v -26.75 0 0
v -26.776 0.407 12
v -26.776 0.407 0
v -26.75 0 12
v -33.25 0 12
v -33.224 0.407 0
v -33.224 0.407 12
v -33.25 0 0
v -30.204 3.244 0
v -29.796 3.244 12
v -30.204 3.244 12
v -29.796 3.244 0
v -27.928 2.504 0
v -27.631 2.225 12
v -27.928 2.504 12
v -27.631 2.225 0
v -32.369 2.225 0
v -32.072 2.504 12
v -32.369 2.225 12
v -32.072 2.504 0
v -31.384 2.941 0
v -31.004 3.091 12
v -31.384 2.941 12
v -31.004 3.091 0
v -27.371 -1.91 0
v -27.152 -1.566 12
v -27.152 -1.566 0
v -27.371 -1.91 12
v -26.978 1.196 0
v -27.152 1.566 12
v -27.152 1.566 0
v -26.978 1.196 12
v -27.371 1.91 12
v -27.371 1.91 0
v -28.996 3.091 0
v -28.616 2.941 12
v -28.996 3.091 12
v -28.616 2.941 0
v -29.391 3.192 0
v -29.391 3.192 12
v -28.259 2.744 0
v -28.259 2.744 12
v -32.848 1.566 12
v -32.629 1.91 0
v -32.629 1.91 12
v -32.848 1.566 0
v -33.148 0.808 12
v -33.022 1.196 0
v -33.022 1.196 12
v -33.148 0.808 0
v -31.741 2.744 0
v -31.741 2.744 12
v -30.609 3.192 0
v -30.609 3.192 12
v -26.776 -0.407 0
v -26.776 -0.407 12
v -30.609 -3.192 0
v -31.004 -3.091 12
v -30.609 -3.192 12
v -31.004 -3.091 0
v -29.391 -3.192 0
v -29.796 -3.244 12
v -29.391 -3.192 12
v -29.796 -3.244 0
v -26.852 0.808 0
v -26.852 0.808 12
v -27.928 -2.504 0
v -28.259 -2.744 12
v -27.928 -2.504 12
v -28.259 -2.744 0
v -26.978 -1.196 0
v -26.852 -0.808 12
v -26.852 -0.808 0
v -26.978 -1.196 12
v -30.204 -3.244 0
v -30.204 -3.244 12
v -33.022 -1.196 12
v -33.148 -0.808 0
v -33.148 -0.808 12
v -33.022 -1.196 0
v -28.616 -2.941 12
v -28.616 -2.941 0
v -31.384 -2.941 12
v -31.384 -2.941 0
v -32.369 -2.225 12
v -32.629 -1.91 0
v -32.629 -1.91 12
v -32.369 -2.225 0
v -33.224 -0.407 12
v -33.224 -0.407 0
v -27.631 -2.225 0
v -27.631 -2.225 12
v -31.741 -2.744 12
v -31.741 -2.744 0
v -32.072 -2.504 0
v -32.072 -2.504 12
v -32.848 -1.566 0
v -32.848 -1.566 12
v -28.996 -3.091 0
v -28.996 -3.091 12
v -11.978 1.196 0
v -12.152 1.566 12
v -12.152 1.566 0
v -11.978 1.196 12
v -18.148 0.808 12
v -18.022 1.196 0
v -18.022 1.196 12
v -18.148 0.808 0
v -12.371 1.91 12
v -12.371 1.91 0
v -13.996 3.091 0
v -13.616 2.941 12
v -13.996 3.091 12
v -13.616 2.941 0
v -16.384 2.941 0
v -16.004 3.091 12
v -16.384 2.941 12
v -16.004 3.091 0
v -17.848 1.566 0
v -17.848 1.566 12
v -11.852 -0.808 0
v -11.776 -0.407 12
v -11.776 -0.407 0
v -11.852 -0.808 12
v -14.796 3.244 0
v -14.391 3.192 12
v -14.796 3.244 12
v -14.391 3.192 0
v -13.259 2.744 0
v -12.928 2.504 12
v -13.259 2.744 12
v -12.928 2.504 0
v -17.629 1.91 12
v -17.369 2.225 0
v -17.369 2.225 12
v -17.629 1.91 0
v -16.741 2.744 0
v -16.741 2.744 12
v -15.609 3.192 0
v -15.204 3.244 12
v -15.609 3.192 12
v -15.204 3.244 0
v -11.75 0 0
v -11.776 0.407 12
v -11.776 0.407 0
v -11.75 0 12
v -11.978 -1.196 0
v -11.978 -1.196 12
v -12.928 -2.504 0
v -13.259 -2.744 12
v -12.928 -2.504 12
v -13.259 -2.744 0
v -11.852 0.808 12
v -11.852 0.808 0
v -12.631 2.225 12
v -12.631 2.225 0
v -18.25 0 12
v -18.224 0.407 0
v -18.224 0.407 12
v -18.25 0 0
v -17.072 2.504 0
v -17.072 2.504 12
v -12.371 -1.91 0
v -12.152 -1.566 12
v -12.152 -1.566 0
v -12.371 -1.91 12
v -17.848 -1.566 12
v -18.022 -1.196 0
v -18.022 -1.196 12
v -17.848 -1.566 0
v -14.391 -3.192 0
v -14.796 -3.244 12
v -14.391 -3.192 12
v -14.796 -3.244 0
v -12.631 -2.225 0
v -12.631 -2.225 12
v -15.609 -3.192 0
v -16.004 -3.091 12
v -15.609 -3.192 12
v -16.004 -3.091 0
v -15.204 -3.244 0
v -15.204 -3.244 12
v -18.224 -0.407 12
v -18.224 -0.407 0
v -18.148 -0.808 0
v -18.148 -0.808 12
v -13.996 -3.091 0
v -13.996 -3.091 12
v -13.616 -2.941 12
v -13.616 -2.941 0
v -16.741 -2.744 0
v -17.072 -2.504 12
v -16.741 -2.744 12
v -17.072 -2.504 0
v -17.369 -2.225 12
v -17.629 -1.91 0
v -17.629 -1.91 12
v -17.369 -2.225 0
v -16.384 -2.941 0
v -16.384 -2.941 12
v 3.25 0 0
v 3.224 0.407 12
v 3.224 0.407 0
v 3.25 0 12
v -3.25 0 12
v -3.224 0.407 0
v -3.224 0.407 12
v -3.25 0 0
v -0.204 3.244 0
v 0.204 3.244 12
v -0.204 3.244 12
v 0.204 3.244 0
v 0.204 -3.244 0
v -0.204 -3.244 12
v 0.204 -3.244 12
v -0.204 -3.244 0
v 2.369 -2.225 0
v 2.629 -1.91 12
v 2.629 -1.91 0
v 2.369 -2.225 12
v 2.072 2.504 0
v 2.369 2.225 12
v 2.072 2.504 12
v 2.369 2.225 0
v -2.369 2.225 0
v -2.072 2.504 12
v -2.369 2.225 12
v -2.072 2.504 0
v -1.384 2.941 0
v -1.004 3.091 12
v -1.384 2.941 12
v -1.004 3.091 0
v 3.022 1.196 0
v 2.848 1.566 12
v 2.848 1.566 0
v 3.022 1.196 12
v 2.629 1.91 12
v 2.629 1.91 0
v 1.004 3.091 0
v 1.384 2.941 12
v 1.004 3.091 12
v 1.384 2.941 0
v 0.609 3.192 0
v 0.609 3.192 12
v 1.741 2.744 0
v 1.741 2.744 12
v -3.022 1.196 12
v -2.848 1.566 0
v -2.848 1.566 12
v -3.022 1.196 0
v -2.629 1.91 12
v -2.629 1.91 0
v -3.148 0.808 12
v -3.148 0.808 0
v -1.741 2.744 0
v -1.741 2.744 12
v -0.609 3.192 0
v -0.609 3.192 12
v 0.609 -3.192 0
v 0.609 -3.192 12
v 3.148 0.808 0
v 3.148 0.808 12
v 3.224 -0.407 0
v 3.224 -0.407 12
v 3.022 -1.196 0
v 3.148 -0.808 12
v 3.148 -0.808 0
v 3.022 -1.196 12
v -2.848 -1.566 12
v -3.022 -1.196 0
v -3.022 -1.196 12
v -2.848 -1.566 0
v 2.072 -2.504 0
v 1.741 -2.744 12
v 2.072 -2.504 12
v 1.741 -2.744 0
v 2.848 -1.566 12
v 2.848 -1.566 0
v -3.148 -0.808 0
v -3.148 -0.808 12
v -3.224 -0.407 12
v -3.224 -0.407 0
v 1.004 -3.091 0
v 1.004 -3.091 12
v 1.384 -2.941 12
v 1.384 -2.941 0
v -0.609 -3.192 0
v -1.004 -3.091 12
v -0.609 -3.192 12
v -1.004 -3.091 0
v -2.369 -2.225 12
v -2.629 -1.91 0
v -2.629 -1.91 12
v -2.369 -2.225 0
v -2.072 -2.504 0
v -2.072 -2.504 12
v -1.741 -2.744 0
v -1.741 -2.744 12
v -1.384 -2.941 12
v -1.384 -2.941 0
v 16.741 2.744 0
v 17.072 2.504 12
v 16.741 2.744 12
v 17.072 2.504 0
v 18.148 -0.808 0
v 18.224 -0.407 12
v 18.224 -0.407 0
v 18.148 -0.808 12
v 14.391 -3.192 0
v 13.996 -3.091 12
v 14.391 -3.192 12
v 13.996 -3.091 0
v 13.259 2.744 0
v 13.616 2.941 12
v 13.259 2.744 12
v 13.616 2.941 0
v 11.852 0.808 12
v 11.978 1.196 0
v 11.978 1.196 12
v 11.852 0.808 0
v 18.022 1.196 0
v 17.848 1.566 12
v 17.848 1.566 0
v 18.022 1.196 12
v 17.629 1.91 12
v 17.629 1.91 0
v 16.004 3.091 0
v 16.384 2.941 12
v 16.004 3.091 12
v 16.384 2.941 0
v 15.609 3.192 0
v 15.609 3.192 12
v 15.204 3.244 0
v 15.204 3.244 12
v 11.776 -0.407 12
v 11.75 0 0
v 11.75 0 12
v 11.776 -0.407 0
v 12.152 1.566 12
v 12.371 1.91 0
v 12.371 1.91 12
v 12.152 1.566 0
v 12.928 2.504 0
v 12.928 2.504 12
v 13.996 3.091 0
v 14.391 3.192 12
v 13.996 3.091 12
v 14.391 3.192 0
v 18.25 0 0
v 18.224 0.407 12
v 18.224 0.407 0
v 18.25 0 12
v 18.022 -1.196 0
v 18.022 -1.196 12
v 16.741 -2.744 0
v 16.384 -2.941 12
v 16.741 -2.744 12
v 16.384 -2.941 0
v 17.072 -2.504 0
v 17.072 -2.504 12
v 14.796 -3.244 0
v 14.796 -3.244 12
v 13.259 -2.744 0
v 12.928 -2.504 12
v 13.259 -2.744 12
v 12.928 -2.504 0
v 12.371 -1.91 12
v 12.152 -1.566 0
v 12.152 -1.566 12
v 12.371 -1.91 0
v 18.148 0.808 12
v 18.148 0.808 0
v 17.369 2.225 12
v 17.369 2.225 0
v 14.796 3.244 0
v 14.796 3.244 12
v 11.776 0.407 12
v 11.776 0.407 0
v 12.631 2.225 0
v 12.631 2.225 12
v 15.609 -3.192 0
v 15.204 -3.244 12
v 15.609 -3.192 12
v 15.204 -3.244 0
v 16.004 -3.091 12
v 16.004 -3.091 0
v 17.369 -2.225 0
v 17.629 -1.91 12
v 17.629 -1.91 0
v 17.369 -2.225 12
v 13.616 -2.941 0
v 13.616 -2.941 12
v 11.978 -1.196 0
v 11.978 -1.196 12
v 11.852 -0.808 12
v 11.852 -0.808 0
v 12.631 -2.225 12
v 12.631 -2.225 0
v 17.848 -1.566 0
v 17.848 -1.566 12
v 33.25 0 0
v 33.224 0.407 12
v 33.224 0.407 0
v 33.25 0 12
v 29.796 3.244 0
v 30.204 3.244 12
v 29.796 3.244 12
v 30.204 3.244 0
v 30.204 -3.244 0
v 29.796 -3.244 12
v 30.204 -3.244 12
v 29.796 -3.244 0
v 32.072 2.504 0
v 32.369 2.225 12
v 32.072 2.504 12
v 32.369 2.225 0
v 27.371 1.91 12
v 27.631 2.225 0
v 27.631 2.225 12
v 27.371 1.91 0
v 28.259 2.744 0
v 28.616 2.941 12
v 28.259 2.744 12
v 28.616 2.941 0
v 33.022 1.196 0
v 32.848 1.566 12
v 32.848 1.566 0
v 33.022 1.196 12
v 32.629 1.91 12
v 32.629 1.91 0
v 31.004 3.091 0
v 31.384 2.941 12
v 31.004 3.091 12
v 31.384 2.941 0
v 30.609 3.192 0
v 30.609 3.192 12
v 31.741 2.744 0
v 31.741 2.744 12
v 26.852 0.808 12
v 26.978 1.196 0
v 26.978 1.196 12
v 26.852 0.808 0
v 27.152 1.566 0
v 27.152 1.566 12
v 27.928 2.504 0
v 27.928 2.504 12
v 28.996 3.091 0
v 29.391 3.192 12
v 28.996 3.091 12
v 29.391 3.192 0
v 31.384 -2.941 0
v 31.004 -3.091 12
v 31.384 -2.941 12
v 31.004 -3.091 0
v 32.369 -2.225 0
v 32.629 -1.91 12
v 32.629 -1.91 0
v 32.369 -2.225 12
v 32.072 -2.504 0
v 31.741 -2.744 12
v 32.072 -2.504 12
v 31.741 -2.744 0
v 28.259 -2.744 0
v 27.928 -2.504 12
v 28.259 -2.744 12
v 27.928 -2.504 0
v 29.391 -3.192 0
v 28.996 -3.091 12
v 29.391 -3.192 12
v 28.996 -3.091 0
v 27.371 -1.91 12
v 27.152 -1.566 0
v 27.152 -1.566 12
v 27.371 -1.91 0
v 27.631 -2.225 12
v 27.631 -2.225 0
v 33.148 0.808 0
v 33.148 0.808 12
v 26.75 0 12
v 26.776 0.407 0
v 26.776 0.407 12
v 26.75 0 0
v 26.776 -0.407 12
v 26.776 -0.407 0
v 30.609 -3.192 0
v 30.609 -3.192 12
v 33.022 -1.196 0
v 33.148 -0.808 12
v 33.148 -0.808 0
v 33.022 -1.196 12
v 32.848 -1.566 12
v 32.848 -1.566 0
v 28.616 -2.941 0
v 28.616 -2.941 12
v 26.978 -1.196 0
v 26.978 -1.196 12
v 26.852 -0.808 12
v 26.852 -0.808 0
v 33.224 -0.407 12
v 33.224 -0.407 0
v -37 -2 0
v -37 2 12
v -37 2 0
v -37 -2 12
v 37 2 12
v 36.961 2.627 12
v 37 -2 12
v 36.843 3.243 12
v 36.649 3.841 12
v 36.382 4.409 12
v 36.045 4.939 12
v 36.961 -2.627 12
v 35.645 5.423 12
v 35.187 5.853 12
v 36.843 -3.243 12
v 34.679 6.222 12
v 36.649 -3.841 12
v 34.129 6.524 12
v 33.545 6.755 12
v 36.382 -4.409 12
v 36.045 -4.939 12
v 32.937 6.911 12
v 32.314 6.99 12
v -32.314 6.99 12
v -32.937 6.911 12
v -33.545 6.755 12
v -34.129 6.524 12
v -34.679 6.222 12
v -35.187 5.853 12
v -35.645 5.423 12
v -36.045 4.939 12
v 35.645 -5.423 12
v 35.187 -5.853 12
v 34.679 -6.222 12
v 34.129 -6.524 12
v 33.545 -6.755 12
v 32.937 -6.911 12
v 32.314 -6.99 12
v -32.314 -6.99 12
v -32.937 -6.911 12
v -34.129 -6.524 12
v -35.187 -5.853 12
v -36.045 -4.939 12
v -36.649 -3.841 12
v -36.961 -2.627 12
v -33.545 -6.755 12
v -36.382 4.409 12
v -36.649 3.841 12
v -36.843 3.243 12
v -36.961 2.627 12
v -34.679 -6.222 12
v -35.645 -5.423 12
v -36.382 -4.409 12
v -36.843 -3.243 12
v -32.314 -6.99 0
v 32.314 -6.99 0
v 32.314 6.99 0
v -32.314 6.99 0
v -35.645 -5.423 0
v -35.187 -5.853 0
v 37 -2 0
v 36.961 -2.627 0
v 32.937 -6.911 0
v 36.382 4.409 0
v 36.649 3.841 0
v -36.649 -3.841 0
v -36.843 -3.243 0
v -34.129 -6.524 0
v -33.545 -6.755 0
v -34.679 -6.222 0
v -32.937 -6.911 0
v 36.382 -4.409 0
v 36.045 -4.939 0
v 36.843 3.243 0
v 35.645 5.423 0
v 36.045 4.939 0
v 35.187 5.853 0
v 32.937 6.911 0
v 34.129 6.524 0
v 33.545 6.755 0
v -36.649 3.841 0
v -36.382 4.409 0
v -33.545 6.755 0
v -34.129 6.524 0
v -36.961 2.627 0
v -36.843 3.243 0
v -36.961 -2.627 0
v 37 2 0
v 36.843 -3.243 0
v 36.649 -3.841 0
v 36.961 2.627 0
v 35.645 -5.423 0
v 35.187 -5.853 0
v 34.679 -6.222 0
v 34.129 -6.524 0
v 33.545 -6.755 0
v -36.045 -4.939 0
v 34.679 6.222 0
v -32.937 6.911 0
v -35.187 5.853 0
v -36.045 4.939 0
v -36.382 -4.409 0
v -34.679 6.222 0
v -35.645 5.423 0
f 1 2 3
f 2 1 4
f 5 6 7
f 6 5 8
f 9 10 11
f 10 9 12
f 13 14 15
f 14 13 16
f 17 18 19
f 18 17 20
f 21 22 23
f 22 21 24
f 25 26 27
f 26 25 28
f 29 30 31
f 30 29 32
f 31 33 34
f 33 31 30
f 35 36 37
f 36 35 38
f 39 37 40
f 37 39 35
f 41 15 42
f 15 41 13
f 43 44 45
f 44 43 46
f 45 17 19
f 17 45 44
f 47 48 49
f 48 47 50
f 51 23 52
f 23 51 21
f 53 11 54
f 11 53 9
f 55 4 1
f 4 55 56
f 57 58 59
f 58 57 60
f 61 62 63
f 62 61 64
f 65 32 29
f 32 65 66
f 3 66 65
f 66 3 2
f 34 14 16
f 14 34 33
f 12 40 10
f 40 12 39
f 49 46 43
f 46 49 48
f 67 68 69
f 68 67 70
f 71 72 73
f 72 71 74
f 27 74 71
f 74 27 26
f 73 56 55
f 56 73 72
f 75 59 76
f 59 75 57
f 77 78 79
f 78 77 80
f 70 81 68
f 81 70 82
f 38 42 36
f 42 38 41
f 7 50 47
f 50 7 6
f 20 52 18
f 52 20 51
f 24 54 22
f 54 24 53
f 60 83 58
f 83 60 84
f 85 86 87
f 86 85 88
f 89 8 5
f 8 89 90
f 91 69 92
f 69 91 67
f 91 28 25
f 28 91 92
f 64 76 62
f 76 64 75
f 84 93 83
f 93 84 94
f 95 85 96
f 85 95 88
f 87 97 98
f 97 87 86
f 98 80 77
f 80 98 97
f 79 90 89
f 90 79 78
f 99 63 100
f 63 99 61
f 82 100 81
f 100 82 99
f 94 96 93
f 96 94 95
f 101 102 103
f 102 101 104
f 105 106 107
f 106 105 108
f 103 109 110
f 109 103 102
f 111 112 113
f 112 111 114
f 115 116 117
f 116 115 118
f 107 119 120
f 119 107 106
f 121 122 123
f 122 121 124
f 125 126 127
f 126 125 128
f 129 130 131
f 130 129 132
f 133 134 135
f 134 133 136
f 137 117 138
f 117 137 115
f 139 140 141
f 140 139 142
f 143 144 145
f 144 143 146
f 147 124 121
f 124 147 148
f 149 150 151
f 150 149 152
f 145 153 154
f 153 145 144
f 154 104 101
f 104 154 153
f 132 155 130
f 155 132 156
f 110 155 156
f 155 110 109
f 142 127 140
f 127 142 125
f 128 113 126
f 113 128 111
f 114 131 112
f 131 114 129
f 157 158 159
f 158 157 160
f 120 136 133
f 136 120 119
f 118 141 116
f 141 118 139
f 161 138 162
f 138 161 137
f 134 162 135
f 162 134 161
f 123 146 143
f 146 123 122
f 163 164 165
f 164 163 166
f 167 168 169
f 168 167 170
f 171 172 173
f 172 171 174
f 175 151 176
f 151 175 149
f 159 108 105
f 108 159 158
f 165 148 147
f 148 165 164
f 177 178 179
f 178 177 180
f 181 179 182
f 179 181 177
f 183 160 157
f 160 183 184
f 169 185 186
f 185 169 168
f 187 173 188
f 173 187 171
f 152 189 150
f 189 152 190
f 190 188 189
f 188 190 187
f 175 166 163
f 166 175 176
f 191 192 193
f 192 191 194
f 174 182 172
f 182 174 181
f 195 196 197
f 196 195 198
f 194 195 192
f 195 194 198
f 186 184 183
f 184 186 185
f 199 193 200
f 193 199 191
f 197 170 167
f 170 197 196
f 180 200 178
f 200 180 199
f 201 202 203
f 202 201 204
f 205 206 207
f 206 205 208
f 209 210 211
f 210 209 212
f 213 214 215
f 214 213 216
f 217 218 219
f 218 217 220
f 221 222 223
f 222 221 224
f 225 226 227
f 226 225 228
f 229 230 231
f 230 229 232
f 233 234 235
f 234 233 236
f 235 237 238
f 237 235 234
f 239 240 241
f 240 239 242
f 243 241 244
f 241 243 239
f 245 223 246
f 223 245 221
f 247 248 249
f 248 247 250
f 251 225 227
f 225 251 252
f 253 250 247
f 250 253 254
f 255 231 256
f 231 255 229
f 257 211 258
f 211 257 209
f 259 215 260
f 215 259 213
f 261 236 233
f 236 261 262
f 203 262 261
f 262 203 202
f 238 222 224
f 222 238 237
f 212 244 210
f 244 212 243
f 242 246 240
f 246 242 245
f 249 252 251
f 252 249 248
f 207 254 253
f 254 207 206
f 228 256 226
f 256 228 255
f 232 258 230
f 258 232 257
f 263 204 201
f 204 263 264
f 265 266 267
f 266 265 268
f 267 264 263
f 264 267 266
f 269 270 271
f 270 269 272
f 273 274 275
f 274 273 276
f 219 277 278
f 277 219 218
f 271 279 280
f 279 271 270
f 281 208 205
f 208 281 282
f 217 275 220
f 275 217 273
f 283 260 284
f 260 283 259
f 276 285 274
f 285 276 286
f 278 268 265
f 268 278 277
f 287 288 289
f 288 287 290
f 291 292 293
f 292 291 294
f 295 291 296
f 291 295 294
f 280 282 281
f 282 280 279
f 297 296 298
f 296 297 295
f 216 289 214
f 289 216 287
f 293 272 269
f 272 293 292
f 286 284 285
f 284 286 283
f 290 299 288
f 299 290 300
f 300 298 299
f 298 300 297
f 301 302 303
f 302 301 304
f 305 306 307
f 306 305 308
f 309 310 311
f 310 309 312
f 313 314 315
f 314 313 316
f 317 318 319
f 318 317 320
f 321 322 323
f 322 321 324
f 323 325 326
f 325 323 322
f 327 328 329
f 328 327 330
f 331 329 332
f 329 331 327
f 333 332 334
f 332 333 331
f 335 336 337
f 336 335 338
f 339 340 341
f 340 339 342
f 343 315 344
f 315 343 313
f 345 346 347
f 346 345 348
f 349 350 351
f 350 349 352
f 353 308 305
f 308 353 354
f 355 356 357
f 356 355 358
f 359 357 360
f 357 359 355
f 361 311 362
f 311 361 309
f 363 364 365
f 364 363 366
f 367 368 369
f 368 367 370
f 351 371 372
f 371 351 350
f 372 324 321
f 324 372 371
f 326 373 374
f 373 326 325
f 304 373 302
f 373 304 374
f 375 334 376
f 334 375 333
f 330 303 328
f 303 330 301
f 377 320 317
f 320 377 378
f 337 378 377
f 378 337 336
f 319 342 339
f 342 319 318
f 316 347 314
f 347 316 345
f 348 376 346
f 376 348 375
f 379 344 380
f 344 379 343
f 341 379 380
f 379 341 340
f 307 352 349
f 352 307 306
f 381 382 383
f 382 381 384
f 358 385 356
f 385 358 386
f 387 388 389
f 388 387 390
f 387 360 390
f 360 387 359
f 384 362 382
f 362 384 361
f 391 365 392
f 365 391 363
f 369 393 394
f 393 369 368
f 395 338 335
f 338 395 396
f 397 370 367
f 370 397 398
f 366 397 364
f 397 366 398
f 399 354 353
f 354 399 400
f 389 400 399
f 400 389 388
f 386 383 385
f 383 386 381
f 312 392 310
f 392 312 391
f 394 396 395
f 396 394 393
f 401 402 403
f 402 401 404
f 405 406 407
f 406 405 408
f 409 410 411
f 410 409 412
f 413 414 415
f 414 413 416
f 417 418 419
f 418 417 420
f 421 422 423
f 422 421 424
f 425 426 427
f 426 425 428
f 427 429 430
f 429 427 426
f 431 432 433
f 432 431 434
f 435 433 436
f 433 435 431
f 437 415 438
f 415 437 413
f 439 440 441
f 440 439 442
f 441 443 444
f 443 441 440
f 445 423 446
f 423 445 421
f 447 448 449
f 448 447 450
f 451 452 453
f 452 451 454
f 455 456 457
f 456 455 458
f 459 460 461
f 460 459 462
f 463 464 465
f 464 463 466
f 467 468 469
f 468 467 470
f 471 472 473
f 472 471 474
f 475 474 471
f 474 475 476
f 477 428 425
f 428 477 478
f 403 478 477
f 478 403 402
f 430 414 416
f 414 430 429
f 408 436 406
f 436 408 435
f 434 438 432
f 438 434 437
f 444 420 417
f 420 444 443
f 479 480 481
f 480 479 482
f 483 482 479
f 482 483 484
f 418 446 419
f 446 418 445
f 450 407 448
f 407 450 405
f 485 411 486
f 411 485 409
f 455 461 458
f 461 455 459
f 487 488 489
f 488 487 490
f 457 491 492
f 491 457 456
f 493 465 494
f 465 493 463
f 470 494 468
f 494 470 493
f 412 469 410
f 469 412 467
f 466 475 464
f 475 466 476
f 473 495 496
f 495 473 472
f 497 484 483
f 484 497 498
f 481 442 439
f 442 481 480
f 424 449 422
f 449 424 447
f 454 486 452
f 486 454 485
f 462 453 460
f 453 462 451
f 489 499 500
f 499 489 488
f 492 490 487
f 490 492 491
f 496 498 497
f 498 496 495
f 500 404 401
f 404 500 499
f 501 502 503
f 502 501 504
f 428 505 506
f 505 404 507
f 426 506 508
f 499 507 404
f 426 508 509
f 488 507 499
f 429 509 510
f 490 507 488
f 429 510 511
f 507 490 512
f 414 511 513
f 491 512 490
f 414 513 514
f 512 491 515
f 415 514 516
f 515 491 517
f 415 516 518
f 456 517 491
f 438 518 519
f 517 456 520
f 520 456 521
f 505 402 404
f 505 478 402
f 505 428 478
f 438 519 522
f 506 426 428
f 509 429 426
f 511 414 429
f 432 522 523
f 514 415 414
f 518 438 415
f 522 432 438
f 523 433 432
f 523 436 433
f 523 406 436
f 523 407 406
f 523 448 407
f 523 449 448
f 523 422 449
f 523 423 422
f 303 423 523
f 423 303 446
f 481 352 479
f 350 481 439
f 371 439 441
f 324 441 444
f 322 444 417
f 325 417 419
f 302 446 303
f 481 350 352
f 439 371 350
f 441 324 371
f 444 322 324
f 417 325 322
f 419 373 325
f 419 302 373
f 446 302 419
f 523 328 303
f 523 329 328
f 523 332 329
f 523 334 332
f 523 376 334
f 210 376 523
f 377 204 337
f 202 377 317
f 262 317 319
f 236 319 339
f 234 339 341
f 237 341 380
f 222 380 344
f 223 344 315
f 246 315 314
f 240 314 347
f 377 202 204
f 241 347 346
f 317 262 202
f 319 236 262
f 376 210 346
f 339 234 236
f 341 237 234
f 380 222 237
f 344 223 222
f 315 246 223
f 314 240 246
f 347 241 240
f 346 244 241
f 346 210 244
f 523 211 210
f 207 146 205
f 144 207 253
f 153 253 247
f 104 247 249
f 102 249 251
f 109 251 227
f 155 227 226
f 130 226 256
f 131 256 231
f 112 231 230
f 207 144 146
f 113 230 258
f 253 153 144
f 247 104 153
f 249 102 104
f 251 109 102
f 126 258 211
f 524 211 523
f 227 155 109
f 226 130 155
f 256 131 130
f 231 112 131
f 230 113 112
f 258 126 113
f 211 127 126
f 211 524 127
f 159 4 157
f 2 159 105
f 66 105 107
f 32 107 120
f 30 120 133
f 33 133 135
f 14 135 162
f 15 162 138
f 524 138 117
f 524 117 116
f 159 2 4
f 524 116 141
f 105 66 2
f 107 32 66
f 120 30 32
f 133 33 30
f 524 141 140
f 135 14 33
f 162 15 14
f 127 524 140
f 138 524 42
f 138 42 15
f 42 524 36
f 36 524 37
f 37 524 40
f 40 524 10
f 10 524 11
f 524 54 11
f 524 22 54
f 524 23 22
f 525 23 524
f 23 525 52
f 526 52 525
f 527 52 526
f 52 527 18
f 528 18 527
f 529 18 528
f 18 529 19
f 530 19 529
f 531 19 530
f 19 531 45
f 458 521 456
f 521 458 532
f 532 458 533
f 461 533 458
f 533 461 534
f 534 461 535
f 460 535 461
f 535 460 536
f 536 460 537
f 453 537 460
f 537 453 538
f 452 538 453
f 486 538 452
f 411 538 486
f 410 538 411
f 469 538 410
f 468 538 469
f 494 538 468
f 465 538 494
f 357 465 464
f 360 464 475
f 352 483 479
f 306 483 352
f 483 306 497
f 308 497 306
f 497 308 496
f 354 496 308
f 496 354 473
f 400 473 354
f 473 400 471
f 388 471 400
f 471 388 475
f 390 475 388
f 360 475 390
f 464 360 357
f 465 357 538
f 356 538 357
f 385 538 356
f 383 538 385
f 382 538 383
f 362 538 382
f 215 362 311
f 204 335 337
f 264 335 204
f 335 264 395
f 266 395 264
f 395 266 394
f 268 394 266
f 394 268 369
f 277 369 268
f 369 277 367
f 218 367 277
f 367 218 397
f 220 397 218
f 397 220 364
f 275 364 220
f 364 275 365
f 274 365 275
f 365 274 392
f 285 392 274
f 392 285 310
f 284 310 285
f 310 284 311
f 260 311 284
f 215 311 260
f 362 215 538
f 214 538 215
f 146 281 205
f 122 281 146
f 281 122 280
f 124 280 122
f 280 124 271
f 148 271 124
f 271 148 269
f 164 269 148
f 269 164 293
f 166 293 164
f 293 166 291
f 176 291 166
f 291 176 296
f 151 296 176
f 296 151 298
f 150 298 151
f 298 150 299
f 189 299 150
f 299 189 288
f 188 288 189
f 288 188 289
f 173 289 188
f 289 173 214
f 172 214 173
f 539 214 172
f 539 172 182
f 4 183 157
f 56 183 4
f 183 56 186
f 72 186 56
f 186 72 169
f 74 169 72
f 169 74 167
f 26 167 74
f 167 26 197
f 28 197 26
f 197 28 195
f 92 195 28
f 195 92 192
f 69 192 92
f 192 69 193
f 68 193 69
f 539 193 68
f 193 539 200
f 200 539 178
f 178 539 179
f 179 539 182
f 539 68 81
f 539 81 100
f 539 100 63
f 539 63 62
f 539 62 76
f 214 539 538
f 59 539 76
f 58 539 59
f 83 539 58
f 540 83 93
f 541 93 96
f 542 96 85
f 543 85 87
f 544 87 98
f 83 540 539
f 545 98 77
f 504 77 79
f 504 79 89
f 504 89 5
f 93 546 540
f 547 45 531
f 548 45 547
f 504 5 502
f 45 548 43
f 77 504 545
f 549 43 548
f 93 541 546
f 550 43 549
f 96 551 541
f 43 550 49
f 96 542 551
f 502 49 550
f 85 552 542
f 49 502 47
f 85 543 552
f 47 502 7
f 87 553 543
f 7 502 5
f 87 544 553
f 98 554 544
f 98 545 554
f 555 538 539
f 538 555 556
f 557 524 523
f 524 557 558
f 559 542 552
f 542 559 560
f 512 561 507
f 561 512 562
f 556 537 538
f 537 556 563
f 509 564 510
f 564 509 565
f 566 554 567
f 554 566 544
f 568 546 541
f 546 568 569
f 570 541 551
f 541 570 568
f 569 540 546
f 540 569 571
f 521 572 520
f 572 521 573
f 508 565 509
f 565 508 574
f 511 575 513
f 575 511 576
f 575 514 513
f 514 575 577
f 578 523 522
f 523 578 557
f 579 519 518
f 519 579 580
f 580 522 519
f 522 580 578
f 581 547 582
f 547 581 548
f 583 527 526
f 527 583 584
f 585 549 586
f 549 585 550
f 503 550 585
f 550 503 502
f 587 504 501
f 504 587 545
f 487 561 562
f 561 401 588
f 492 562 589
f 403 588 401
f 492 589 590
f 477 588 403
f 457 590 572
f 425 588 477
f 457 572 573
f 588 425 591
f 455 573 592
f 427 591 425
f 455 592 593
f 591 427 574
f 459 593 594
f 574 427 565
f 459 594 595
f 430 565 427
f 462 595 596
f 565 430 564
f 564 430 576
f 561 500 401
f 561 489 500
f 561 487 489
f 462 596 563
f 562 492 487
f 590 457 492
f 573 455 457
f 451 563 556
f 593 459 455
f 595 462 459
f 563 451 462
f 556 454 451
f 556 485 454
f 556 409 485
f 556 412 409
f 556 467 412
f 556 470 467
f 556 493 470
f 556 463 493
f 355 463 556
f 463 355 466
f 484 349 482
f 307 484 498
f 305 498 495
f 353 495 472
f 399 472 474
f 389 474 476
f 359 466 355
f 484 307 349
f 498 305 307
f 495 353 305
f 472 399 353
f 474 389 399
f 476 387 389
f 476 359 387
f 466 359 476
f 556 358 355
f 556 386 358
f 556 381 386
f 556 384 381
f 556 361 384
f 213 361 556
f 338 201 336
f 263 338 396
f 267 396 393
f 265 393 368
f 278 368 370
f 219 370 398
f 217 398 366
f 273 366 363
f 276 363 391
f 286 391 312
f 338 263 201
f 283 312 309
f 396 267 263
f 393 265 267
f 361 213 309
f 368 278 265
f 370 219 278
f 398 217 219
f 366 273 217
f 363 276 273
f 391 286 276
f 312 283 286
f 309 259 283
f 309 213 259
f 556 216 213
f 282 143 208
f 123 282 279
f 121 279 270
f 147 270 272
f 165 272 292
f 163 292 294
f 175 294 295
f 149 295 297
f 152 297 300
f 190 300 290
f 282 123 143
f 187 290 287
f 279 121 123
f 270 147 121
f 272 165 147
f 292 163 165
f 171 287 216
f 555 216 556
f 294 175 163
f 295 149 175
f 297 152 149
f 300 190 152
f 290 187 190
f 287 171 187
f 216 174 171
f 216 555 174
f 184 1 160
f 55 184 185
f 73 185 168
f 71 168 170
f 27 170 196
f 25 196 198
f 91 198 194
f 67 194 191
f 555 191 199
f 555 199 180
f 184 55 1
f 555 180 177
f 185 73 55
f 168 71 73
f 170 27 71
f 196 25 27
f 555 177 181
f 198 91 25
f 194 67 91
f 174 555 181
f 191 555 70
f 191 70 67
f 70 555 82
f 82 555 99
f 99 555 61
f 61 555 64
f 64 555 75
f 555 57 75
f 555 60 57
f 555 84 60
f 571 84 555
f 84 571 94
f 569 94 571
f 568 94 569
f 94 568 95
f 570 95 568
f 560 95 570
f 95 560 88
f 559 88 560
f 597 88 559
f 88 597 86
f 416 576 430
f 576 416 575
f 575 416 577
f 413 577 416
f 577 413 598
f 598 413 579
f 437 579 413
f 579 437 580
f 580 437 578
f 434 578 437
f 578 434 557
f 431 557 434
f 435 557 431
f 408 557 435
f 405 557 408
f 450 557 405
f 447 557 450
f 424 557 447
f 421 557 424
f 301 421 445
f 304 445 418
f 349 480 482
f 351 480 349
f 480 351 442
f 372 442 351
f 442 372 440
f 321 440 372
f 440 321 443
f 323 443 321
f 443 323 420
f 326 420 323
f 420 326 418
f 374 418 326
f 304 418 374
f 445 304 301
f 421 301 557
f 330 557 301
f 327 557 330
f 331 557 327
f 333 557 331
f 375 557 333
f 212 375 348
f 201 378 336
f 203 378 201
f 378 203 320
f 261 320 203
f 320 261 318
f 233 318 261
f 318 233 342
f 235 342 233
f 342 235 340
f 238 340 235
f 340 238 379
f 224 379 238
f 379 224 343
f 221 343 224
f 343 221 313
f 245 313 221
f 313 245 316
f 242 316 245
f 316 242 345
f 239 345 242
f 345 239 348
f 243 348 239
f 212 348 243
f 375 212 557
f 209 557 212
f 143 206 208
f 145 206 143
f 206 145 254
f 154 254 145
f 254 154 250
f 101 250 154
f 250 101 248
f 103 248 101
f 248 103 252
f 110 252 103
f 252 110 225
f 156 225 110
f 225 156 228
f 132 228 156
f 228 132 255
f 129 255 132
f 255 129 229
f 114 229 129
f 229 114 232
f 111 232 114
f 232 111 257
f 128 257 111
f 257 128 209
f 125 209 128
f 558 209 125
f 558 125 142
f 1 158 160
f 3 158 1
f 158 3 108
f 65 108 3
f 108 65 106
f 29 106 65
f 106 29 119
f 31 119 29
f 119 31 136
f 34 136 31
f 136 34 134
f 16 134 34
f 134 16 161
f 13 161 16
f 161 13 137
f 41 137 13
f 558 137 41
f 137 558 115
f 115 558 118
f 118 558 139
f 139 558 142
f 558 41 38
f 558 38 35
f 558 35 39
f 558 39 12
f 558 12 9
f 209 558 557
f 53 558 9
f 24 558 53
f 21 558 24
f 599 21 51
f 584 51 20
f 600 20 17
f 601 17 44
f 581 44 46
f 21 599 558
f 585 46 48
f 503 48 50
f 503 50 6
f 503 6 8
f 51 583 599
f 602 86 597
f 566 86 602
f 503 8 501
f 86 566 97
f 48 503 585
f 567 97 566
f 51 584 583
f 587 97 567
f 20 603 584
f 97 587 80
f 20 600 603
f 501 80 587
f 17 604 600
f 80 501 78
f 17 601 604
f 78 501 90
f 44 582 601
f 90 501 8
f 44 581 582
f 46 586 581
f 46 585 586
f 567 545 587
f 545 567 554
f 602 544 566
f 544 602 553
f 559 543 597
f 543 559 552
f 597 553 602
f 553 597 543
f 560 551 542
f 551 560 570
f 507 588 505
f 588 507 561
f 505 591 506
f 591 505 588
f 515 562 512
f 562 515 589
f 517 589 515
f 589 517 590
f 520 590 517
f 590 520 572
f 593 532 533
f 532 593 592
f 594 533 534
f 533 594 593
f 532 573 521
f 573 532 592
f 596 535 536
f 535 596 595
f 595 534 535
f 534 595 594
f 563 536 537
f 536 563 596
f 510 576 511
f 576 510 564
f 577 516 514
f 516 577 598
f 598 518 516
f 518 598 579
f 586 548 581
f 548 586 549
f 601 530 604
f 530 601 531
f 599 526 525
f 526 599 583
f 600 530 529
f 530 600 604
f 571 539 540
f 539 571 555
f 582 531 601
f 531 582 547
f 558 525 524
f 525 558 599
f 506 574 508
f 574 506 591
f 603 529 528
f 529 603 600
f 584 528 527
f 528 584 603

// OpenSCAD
$fn = 50;


difference() {
	union() {
		hull() {
			translate(v = [-32.0000000000, 2.0000000000, 0]) {
				cylinder(h = 12, r = 5);
			}
			translate(v = [32.0000000000, 2.0000000000, 0]) {
				cylinder(h = 12, r = 5);
			}
			translate(v = [-32.0000000000, -2.0000000000, 0]) {
				cylinder(h = 12, r = 5);
			}
			translate(v = [32.0000000000, -2.0000000000, 0]) {
				cylinder(h = 12, r = 5);
			}
		}
	}
	union() {
		translate(v = [-30.0000000000, 0.0000000000, -100.0000000000]) {
			cylinder(h = 200, r = 3.2500000000);
		}
		translate(v = [-15.0000000000, 0.0000000000, -100.0000000000]) {
			cylinder(h = 200, r = 3.2500000000);
		}
		translate(v = [0.0000000000, 0.0000000000, -100.0000000000]) {
			cylinder(h = 200, r = 3.2500000000);
		}
		translate(v = [15.0000000000, 0.0000000000, -100.0000000000]) {
			cylinder(h = 200, r = 3.2500000000);
		}
		translate(v = [30.0000000000, 0.0000000000, -100.0000000000]) {
			cylinder(h = 200, r = 3.2500000000);
		}
	}
}
